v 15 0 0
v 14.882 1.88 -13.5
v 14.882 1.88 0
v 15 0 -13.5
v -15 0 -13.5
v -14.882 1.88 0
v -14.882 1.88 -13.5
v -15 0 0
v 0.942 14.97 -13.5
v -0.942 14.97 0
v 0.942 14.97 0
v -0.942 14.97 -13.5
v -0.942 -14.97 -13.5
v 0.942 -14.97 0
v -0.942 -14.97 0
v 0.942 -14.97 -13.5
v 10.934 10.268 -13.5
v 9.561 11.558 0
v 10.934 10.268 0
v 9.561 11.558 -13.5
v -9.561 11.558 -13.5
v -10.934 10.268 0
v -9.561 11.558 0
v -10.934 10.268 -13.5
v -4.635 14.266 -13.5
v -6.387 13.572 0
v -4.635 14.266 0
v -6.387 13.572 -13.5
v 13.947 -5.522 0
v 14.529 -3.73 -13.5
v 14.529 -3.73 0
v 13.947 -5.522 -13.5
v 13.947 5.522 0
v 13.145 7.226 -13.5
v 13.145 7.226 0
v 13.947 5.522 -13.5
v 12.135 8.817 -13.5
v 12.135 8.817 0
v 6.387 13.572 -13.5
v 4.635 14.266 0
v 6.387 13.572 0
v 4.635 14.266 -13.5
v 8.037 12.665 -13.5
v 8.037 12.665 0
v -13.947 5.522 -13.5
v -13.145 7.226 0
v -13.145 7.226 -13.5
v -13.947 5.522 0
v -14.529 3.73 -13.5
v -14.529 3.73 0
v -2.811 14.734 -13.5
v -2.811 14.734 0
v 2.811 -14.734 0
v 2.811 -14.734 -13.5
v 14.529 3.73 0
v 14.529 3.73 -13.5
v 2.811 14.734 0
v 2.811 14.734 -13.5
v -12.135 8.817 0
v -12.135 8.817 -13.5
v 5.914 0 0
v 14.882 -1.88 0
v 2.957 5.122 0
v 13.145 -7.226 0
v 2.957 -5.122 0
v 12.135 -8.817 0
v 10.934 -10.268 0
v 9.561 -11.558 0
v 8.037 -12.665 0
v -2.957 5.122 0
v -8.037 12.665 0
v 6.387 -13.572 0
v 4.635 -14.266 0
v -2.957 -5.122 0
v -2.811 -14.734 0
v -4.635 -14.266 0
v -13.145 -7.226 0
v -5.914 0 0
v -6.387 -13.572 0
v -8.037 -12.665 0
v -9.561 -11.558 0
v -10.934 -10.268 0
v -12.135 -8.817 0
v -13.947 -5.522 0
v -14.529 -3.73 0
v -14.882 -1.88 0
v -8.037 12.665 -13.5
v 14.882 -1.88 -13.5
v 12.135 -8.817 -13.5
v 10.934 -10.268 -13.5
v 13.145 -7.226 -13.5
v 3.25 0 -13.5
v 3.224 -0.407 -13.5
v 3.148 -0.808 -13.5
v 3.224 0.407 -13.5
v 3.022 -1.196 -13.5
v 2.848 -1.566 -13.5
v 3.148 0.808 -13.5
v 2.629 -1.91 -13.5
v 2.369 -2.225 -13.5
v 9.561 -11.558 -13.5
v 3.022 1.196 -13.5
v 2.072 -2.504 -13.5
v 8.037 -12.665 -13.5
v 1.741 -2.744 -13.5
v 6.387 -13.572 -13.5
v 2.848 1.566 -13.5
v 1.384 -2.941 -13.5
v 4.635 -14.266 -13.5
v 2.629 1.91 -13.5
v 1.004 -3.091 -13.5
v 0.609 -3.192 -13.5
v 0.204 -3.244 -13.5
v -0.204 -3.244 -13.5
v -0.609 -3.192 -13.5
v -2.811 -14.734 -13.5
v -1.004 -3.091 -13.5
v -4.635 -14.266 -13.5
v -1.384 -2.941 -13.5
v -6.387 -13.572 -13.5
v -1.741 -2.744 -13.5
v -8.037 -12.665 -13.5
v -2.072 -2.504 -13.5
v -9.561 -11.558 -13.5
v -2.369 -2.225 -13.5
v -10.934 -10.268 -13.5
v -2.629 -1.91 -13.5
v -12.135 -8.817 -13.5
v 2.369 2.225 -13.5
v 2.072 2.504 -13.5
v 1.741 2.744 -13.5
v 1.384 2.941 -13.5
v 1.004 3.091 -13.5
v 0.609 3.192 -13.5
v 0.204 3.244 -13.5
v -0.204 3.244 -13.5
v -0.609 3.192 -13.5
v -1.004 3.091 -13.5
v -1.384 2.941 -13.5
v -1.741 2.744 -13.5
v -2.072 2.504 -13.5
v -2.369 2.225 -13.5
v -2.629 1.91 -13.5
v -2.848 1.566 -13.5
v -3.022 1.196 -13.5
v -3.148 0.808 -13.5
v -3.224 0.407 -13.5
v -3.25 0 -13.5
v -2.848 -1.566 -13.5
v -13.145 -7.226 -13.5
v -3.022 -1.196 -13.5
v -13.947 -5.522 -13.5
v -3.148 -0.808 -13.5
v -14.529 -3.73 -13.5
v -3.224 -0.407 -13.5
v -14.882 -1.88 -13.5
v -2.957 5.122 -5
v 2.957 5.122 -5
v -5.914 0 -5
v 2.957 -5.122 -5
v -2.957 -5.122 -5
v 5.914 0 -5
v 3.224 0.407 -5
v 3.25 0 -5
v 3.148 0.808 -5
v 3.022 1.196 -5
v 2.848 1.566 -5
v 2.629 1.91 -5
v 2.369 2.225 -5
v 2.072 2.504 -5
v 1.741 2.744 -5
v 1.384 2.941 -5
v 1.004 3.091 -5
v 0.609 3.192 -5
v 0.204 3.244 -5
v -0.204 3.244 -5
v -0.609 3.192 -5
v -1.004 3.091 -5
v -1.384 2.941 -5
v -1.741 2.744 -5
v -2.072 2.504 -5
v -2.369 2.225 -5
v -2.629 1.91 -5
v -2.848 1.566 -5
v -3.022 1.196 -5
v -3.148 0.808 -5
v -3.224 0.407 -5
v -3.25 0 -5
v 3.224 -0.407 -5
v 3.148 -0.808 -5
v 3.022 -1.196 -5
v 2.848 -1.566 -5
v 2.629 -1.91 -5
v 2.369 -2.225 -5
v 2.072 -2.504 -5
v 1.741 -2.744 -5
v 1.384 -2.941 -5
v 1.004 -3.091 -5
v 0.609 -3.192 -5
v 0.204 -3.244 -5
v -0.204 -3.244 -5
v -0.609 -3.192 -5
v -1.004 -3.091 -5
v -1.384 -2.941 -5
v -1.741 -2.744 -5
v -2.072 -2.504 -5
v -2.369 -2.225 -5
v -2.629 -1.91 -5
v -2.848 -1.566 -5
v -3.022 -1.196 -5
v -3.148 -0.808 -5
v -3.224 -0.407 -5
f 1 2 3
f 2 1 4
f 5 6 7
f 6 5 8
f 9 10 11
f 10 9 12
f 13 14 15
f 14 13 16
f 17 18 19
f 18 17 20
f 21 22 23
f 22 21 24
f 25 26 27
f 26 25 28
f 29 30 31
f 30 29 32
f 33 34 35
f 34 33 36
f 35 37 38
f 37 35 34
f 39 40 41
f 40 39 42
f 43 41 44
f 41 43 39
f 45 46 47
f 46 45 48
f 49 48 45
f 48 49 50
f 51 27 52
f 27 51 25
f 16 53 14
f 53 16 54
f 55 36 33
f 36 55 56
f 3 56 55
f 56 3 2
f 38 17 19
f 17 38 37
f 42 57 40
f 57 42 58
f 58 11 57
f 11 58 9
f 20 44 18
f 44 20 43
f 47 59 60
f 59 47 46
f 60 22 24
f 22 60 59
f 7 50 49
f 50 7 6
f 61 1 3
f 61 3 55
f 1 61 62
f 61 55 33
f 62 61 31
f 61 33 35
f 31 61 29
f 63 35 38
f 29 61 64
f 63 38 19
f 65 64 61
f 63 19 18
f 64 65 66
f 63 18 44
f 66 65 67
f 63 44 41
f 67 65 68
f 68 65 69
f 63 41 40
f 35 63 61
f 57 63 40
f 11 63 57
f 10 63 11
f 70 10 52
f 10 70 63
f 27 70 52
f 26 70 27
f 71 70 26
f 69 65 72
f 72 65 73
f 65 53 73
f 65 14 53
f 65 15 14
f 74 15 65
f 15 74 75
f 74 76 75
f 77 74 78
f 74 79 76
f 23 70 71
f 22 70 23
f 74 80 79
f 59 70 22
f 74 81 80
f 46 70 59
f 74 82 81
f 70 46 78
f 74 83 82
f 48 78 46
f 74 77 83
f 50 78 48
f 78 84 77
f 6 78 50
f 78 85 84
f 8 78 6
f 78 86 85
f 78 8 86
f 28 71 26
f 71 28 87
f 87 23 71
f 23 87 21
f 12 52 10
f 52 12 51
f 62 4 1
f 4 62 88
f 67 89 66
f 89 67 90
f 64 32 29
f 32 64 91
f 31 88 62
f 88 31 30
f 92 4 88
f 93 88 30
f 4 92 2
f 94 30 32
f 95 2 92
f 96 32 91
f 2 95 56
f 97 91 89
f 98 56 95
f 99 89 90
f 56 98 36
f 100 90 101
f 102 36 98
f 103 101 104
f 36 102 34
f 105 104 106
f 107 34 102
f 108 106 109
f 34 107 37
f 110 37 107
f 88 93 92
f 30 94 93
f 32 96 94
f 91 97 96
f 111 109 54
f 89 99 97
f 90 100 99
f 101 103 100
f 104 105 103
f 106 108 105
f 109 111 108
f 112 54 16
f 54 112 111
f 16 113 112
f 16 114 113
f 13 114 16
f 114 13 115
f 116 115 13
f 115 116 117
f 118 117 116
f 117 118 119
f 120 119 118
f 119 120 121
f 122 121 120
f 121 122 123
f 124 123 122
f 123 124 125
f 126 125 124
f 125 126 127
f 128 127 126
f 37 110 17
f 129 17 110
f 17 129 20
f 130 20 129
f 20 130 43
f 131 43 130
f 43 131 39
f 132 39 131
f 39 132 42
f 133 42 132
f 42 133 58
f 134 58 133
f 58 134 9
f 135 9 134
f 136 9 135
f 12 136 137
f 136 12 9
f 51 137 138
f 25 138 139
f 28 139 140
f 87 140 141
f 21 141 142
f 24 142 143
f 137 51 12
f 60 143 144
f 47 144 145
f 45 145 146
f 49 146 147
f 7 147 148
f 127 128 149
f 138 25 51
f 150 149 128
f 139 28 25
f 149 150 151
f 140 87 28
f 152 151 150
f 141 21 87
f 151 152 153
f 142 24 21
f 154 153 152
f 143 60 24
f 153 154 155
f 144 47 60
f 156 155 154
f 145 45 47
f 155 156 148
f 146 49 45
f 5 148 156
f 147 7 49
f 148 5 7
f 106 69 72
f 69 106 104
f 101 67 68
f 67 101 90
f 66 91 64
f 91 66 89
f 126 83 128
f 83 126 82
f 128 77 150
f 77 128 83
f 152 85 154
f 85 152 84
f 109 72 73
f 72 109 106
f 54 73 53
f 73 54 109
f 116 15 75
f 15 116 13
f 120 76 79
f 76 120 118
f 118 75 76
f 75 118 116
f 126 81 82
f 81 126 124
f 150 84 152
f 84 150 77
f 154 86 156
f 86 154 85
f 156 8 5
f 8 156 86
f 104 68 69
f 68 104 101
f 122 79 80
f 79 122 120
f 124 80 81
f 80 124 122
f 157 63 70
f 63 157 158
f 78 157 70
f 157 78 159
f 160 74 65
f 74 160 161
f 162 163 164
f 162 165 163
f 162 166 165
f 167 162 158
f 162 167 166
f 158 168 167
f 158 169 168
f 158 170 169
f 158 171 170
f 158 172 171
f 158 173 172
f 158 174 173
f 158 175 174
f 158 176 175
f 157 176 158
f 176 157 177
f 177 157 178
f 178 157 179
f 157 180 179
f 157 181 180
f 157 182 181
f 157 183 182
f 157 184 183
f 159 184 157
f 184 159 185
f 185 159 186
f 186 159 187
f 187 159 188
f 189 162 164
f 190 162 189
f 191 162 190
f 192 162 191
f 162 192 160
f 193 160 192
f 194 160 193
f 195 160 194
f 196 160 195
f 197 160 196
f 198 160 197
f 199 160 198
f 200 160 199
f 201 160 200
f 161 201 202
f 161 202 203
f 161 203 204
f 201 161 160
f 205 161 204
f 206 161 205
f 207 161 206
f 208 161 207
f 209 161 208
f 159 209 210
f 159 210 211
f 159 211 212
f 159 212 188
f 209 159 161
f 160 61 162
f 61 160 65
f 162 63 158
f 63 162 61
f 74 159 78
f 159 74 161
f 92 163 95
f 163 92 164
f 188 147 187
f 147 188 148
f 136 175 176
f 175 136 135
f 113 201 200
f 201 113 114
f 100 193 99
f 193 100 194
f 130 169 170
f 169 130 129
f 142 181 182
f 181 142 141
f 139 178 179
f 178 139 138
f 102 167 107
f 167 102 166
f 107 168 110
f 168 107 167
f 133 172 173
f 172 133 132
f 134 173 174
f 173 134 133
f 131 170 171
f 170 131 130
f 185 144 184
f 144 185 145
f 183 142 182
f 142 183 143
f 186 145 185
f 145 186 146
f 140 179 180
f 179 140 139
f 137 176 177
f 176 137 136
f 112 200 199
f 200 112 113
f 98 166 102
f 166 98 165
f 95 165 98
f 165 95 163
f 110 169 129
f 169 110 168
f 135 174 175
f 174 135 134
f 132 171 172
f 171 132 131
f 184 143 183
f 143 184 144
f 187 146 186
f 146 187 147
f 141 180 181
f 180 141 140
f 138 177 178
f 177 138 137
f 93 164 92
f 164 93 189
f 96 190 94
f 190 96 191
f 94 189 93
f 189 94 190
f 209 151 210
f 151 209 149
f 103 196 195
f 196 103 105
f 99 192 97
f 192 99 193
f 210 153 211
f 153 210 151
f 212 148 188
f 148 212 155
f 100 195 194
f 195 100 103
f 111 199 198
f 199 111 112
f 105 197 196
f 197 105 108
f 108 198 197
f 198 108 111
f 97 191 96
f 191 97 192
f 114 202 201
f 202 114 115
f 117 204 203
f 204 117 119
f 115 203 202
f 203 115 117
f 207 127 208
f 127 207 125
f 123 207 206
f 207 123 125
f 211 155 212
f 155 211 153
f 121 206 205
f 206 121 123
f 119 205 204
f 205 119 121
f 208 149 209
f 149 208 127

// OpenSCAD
$fn = 50;


difference() {
	union() {
		translate(v = [0, 0, -13.5000000000]) {
			cylinder(h = 13.5000000000, r = 15.0000000000);
		}
		translate(v = [0, 0, -15.0000000000]) {
			cylinder(h = 15, r = 2.8750000000);
		}
	}
	union() {
		translate(v = [0, 0, 0]) {
			rotate(a = [0, 0, 0]) {
				difference() {
					union() {
						translate(v = [0, 0, -5]) {
							linear_extrude(height = 5) {
								polygon(points = [[5.9142500000, 0.0000000000], [2.9571250000, 5.1218907443], [-2.9571250000, 5.1218907443], [-5.9142500000, 0.0000000000], [-2.9571250000, -5.1218907443], [2.9571250000, -5.1218907443]]);
							}
						}
					}
					union();
				}
			}
		}
		#translate(v = [0, 0, -100.0000000000]) {
			cylinder(h = 200, r = 3.2500000000);
		}
	}
}
